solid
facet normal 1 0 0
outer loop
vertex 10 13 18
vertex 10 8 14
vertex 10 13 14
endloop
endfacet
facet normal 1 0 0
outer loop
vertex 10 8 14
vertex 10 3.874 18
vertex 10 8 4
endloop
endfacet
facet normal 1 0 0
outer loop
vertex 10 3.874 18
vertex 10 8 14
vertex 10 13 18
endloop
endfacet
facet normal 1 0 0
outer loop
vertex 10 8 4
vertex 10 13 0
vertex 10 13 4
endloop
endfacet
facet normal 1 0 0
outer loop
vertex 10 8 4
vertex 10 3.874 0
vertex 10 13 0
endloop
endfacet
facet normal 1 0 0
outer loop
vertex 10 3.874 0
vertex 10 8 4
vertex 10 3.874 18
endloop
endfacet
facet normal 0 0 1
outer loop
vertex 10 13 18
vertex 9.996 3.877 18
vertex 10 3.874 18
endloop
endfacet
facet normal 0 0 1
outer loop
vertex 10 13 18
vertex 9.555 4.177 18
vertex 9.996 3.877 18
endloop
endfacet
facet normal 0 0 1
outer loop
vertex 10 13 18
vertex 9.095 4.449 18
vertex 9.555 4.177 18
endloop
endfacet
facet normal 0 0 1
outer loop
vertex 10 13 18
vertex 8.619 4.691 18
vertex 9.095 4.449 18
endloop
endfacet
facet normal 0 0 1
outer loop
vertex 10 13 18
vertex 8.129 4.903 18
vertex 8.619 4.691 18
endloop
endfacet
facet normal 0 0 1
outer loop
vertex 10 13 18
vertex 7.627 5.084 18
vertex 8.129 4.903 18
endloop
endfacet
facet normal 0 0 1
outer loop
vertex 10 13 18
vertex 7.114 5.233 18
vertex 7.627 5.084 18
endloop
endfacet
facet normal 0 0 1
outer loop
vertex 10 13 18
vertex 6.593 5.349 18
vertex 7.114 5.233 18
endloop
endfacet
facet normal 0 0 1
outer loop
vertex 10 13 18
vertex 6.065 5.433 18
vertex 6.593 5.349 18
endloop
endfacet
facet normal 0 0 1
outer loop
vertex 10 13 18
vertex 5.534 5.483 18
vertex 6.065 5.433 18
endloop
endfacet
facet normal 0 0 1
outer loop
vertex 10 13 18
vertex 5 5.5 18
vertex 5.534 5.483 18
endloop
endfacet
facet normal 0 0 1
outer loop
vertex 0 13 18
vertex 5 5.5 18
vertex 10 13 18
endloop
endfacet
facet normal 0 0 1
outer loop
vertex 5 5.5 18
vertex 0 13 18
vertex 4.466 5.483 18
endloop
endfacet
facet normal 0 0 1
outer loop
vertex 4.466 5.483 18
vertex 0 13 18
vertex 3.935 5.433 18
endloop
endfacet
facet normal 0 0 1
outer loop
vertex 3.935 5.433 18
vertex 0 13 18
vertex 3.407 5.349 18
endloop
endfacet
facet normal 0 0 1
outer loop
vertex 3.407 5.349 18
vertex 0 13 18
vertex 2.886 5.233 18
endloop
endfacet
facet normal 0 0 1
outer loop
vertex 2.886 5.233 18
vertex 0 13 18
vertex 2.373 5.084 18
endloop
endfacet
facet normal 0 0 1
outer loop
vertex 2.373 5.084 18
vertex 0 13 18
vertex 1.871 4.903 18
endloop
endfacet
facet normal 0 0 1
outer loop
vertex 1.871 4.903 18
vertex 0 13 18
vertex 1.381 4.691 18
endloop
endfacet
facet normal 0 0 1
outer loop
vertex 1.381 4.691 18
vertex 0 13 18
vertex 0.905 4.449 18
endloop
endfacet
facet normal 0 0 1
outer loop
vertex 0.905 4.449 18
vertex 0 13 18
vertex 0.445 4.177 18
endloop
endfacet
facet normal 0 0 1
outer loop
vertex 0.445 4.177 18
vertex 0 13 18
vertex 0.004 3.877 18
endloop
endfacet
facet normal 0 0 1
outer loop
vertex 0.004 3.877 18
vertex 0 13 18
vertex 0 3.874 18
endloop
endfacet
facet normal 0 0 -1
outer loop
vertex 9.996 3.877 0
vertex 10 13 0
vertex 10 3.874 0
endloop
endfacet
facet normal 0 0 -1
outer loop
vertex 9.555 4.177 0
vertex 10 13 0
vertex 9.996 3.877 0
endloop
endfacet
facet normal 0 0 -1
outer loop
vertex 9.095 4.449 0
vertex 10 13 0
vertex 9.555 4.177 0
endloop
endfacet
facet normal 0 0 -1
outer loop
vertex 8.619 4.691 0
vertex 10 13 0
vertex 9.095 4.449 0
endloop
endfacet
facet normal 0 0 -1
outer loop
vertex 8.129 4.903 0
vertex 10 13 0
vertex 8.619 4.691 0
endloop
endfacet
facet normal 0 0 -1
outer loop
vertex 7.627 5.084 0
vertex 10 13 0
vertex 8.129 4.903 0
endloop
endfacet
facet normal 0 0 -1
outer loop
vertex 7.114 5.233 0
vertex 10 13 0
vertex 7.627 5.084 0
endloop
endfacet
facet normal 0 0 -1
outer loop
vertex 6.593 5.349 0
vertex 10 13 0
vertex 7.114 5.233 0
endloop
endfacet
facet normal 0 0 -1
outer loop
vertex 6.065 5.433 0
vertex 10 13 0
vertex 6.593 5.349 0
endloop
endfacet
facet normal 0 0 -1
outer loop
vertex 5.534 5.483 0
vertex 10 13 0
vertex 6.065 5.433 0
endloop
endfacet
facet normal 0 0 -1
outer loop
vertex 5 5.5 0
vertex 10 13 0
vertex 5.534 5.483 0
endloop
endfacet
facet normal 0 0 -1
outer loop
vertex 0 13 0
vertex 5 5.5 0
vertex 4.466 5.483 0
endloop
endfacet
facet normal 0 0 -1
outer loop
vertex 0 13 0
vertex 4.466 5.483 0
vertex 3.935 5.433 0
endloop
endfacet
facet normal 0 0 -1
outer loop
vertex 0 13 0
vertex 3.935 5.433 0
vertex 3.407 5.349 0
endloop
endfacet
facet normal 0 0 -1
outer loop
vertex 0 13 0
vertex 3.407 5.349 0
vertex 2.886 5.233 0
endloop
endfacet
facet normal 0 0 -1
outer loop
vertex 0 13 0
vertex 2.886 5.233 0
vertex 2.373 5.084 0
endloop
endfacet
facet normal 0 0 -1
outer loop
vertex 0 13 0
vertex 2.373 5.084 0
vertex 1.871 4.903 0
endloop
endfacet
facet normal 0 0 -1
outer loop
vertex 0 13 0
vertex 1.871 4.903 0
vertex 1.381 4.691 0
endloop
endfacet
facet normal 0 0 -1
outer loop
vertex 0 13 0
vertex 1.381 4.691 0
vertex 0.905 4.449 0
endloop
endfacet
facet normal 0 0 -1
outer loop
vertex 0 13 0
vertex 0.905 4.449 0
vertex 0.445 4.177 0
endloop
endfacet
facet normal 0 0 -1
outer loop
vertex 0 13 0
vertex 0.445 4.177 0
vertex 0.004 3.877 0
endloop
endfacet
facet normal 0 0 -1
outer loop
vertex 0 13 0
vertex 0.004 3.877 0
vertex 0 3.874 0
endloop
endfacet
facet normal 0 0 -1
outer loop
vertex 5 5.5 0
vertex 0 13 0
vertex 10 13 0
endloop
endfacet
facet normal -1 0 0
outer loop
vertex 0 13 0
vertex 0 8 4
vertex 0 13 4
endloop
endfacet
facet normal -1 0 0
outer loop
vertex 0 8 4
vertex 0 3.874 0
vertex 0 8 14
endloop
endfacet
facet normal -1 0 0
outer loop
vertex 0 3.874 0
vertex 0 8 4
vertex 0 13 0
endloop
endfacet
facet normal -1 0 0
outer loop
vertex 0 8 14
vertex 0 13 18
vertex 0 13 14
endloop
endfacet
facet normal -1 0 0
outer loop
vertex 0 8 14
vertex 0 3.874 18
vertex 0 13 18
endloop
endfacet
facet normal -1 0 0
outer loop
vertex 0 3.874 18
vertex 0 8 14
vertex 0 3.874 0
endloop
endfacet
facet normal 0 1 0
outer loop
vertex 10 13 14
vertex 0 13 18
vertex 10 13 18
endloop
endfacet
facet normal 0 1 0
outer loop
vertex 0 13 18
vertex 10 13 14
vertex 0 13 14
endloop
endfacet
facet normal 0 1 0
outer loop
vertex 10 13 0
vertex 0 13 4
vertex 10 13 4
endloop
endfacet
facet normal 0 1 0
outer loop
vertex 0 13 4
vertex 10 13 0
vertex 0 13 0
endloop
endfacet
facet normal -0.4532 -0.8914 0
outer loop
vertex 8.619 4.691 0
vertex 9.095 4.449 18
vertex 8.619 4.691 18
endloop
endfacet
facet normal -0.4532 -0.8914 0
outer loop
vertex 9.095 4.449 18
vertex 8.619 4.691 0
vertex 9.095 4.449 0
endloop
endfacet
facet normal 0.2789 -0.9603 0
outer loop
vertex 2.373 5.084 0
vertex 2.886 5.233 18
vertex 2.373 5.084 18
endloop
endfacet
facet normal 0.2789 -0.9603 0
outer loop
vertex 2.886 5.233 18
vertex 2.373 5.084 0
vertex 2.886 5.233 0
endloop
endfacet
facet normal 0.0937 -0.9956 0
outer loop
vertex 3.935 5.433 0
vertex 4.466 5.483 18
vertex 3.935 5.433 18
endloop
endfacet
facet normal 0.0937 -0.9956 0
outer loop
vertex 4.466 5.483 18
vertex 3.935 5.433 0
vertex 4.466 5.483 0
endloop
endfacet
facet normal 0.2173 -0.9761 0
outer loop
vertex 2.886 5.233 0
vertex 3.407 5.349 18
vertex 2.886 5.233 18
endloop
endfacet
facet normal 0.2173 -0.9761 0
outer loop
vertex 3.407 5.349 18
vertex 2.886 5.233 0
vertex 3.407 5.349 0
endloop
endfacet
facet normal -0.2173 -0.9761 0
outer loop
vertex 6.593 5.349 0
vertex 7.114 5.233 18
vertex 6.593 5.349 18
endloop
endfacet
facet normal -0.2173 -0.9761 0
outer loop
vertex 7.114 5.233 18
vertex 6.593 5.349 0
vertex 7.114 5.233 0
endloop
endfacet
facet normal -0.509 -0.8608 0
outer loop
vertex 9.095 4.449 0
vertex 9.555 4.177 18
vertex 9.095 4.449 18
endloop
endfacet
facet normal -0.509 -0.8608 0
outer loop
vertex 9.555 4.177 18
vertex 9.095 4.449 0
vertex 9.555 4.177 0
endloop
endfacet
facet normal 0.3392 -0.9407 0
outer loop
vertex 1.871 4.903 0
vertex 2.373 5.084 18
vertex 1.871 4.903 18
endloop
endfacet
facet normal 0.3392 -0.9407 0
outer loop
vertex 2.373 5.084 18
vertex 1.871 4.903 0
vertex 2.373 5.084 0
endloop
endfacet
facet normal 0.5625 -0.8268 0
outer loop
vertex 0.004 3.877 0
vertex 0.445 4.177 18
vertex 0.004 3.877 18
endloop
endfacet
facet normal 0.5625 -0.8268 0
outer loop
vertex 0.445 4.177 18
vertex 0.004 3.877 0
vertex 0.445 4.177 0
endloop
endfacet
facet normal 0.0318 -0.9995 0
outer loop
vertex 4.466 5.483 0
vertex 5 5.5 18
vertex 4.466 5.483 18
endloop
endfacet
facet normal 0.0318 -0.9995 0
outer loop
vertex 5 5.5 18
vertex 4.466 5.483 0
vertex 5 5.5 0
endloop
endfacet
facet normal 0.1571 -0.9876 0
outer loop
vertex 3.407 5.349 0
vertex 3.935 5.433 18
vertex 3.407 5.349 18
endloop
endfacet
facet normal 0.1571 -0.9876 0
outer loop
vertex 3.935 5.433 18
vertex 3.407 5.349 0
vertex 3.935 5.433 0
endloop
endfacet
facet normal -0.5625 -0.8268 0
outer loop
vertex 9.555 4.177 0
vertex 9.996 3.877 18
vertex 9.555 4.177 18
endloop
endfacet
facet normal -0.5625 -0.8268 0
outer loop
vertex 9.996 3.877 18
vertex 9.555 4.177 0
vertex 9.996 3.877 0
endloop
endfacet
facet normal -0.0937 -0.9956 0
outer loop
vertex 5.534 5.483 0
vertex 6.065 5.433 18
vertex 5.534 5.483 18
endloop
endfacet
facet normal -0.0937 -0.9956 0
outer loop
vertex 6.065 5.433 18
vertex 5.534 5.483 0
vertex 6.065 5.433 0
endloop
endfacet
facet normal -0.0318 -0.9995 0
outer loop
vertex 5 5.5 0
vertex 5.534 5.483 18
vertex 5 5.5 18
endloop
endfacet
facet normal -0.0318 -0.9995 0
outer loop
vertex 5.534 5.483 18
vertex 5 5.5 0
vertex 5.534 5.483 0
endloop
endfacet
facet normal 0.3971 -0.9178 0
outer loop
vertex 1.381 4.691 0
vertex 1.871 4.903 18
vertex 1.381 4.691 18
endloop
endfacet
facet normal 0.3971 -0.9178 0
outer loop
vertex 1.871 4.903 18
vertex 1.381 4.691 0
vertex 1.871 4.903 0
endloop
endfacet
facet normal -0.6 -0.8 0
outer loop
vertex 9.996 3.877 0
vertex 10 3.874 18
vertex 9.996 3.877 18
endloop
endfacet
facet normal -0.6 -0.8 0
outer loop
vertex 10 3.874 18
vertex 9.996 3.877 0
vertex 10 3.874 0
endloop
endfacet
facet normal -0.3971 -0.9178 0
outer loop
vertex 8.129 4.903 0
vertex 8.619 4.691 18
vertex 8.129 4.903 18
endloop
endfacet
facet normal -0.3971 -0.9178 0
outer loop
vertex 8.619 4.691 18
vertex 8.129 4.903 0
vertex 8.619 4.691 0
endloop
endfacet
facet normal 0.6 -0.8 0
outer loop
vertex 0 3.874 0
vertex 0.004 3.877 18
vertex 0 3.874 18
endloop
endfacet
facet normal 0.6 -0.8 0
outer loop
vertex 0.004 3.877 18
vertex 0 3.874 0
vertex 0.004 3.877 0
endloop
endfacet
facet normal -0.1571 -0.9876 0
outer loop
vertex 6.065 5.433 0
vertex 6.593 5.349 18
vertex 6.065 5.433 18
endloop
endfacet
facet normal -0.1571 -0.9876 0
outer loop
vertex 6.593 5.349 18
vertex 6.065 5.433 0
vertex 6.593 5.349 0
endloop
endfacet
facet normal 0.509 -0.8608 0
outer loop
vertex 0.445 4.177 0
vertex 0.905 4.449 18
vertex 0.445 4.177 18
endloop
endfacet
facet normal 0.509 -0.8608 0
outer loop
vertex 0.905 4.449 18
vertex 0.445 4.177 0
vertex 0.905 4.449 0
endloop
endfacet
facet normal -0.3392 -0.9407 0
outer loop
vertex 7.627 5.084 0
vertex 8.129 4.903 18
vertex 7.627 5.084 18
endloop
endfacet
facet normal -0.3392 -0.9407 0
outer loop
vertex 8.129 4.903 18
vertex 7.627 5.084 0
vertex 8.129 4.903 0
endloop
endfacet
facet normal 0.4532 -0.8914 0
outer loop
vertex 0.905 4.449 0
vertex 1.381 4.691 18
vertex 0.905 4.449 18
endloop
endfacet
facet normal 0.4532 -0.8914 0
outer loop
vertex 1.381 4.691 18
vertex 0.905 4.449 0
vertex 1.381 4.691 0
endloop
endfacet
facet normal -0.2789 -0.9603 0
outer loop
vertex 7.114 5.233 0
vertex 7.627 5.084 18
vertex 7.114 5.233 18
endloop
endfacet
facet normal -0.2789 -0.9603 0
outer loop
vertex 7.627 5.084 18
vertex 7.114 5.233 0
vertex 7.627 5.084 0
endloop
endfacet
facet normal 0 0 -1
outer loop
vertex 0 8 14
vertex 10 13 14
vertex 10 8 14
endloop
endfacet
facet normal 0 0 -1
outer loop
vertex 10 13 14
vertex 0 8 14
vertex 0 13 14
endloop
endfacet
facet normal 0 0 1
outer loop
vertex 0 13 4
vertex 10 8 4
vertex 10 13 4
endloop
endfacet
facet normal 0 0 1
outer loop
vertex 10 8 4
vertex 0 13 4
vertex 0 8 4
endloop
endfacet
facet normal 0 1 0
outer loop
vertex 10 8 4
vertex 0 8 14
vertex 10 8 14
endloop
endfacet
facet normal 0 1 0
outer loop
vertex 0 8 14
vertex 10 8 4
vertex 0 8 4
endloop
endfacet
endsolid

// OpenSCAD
width = 10;
height = 18;
depth = 13;
cutout_rad = 17;
nut_width = 10;
nut_height = 10;
nut_depth = 5;

difference()
{
    cube([width, depth, height]);
    translate([width / 2, -3, 0])
    {
        cylinder(h = 100, r1 = cutout_rad / 2, r2 = cutout_rad / 2, center=true, $fn = 100);
    }
    translate([(width - nut_width)/ 2, depth - nut_depth, (height - nut_height) / 2])
    {
        cube([nut_width, nut_depth, nut_height]);
    }
}
